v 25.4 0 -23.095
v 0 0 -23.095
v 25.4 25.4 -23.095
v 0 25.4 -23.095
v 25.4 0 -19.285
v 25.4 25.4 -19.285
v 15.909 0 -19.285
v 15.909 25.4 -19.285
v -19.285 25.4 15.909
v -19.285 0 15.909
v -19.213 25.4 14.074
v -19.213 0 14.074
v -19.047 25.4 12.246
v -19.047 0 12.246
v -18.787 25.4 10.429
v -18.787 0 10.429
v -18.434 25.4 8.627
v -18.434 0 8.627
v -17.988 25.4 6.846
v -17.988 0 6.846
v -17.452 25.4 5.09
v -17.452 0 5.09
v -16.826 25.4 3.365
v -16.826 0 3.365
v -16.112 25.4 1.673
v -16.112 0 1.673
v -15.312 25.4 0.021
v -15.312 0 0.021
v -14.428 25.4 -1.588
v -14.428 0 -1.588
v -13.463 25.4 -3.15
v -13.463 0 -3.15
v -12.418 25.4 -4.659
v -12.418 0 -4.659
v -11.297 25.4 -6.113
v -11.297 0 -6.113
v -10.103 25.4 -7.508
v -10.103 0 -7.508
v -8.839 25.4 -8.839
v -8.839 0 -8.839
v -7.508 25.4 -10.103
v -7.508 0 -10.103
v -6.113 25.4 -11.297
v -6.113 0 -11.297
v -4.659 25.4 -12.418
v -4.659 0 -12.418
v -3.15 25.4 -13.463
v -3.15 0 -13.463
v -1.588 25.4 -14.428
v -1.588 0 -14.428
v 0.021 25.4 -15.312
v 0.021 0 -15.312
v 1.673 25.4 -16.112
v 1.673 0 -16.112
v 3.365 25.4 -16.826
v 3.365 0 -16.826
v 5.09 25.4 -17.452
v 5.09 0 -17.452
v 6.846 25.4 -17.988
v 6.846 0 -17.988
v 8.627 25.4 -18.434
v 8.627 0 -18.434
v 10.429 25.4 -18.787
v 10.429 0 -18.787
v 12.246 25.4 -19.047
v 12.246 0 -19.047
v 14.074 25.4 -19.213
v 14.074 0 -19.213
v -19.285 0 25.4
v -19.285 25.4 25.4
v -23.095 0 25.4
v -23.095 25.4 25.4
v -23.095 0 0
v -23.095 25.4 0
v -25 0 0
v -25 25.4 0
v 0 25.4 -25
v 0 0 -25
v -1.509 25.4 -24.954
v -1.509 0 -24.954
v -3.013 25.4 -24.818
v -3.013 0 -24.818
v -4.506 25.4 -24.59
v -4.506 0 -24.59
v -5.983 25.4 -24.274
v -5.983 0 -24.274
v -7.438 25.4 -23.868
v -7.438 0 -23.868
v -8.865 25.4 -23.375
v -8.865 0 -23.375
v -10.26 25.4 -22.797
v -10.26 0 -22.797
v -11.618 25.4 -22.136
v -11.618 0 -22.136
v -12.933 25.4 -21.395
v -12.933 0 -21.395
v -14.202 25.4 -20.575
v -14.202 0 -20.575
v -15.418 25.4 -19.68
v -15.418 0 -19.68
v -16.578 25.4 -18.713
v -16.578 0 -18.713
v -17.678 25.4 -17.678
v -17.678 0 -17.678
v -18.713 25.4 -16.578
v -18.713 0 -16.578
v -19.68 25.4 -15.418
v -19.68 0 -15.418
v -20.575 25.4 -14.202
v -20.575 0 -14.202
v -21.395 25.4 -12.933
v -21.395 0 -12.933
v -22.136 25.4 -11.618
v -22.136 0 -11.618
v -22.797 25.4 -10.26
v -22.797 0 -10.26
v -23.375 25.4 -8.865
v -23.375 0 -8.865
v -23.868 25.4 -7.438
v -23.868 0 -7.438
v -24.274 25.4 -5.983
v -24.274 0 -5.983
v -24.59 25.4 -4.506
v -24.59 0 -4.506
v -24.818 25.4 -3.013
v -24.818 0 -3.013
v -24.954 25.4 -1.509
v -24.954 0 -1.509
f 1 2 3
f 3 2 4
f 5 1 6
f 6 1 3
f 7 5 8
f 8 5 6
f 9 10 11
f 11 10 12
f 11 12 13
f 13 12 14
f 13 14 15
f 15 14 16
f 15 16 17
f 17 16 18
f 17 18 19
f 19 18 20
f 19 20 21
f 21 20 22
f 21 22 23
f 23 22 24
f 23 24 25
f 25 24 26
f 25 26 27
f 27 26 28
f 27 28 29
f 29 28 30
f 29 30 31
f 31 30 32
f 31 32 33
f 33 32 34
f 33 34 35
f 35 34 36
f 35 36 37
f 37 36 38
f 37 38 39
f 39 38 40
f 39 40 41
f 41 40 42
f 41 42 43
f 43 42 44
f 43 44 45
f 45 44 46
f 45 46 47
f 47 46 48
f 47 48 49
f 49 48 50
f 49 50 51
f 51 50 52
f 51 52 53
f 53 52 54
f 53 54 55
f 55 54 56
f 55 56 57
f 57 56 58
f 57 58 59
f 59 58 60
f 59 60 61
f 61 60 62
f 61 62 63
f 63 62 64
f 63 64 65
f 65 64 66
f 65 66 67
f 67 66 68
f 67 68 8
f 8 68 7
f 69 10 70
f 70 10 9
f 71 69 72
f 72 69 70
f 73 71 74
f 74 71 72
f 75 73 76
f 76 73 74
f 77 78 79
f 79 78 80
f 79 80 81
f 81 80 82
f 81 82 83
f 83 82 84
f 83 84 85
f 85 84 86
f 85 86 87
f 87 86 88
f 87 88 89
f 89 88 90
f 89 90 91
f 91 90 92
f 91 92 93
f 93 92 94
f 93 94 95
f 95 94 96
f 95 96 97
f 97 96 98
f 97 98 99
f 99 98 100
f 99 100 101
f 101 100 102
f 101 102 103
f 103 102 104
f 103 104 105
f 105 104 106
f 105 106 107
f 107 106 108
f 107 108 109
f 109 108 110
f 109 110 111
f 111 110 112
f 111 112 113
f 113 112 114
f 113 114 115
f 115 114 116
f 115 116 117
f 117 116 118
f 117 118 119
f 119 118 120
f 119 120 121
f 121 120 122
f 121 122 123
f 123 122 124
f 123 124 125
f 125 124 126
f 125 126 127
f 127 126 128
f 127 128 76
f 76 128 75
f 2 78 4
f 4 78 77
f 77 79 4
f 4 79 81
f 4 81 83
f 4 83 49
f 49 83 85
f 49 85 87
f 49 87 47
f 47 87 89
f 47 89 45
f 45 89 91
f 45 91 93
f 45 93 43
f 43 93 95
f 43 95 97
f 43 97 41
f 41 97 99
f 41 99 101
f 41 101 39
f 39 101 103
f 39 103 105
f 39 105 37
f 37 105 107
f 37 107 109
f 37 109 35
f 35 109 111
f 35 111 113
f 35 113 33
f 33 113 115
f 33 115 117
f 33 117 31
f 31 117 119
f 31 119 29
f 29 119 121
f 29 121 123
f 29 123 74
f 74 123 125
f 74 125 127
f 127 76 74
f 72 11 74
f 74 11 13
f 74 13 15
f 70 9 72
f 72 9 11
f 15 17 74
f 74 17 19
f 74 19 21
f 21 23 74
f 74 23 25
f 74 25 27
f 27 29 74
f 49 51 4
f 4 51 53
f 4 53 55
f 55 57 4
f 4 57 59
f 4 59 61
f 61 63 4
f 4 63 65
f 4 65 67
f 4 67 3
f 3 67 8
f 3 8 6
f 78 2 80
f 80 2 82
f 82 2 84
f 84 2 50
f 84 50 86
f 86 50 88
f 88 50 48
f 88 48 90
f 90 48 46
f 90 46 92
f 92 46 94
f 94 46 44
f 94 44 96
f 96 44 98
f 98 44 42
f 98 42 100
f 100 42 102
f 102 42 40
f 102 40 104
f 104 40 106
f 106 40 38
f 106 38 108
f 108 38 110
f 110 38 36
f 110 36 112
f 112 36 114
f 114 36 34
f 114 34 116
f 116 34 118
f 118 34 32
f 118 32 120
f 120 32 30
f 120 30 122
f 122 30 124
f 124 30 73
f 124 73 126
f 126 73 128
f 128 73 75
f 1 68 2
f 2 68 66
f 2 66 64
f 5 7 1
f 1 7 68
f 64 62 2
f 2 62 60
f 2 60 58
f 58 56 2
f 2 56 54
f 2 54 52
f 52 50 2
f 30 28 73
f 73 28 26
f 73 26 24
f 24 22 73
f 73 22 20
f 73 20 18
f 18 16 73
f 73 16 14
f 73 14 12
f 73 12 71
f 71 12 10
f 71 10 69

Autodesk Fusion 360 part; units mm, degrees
sketch "Sketch1" plane through (0, 0, 0) normal (0, 1, 0) x (1, 0, 0)
  circle A0 centre (0, 0) radius 25 construction
  line L0 (0, -25) -> (0, 25) construction
  line L1 (0, 0) -> (25, 0) construction
  line L2 (0, 0) -> (-25, 0) construction
  line L3 (-25, 0) -> (-23.095, 0)
  line L4 (-23.095, 0) -> (-23.095, -50.8) construction
  line L5 (-23.095, -50.8) -> (-25, -50.8)
  line L6 (-25, -50.8) -> (-25, 0) construction
  line L7 (0, 25) -> (50.8, 25) construction
  line L8 (50.8, 25) -> (50.8, 23.095) construction
  line L9 (50.8, 23.095) -> (0, 23.095) construction
  line L10 (0, 23.095) -> (0, 25)
  line L11 (0, 23.095) -> (25.4, 23.095)
  line L12 (25.4, 23.095) -> (25.4, 19.285)
  line L13 (-23.095, 0) -> (-23.095, -25.4)
  line L14 (-23.095, -25.4) -> (-19.285, -25.4)
  arc A1 (0, 25) -> (-25, 0) centre (0, 0) ccw
  line L15 (-17.6777, 17.6777) -> (0, 0) construction
  line L16 (-19.285, -25.4) -> (-19.285, -15.9088)
  line L17 (25.4, 19.285) -> (15.9088, 19.285)
  arc A2 (15.9088, 19.285) -> (-19.285, -15.9088) centre (16.3882, -16.3882) ccw
  point P0 (-17.6777, 17.6777)
  point P1 (-8.8388, 8.8388)
  dimension "d1" = 50
  dimension "d4" = 50
  dimension "d5" = 1.905
  dimension "d6" = 50.8
  dimension "d7" = 50.8
  dimension "d8" = 1.905
  dimension "d9" = 25.4
  dimension "d10" = 3.81
  dimension "d11" = 25.4
  dimension "d12" = 3.81
  dimension "d13" = 25
  dimension "d15" = 35.6764
extrude "Extrude1" add sketch "Sketch1" along normal blind 25.4
